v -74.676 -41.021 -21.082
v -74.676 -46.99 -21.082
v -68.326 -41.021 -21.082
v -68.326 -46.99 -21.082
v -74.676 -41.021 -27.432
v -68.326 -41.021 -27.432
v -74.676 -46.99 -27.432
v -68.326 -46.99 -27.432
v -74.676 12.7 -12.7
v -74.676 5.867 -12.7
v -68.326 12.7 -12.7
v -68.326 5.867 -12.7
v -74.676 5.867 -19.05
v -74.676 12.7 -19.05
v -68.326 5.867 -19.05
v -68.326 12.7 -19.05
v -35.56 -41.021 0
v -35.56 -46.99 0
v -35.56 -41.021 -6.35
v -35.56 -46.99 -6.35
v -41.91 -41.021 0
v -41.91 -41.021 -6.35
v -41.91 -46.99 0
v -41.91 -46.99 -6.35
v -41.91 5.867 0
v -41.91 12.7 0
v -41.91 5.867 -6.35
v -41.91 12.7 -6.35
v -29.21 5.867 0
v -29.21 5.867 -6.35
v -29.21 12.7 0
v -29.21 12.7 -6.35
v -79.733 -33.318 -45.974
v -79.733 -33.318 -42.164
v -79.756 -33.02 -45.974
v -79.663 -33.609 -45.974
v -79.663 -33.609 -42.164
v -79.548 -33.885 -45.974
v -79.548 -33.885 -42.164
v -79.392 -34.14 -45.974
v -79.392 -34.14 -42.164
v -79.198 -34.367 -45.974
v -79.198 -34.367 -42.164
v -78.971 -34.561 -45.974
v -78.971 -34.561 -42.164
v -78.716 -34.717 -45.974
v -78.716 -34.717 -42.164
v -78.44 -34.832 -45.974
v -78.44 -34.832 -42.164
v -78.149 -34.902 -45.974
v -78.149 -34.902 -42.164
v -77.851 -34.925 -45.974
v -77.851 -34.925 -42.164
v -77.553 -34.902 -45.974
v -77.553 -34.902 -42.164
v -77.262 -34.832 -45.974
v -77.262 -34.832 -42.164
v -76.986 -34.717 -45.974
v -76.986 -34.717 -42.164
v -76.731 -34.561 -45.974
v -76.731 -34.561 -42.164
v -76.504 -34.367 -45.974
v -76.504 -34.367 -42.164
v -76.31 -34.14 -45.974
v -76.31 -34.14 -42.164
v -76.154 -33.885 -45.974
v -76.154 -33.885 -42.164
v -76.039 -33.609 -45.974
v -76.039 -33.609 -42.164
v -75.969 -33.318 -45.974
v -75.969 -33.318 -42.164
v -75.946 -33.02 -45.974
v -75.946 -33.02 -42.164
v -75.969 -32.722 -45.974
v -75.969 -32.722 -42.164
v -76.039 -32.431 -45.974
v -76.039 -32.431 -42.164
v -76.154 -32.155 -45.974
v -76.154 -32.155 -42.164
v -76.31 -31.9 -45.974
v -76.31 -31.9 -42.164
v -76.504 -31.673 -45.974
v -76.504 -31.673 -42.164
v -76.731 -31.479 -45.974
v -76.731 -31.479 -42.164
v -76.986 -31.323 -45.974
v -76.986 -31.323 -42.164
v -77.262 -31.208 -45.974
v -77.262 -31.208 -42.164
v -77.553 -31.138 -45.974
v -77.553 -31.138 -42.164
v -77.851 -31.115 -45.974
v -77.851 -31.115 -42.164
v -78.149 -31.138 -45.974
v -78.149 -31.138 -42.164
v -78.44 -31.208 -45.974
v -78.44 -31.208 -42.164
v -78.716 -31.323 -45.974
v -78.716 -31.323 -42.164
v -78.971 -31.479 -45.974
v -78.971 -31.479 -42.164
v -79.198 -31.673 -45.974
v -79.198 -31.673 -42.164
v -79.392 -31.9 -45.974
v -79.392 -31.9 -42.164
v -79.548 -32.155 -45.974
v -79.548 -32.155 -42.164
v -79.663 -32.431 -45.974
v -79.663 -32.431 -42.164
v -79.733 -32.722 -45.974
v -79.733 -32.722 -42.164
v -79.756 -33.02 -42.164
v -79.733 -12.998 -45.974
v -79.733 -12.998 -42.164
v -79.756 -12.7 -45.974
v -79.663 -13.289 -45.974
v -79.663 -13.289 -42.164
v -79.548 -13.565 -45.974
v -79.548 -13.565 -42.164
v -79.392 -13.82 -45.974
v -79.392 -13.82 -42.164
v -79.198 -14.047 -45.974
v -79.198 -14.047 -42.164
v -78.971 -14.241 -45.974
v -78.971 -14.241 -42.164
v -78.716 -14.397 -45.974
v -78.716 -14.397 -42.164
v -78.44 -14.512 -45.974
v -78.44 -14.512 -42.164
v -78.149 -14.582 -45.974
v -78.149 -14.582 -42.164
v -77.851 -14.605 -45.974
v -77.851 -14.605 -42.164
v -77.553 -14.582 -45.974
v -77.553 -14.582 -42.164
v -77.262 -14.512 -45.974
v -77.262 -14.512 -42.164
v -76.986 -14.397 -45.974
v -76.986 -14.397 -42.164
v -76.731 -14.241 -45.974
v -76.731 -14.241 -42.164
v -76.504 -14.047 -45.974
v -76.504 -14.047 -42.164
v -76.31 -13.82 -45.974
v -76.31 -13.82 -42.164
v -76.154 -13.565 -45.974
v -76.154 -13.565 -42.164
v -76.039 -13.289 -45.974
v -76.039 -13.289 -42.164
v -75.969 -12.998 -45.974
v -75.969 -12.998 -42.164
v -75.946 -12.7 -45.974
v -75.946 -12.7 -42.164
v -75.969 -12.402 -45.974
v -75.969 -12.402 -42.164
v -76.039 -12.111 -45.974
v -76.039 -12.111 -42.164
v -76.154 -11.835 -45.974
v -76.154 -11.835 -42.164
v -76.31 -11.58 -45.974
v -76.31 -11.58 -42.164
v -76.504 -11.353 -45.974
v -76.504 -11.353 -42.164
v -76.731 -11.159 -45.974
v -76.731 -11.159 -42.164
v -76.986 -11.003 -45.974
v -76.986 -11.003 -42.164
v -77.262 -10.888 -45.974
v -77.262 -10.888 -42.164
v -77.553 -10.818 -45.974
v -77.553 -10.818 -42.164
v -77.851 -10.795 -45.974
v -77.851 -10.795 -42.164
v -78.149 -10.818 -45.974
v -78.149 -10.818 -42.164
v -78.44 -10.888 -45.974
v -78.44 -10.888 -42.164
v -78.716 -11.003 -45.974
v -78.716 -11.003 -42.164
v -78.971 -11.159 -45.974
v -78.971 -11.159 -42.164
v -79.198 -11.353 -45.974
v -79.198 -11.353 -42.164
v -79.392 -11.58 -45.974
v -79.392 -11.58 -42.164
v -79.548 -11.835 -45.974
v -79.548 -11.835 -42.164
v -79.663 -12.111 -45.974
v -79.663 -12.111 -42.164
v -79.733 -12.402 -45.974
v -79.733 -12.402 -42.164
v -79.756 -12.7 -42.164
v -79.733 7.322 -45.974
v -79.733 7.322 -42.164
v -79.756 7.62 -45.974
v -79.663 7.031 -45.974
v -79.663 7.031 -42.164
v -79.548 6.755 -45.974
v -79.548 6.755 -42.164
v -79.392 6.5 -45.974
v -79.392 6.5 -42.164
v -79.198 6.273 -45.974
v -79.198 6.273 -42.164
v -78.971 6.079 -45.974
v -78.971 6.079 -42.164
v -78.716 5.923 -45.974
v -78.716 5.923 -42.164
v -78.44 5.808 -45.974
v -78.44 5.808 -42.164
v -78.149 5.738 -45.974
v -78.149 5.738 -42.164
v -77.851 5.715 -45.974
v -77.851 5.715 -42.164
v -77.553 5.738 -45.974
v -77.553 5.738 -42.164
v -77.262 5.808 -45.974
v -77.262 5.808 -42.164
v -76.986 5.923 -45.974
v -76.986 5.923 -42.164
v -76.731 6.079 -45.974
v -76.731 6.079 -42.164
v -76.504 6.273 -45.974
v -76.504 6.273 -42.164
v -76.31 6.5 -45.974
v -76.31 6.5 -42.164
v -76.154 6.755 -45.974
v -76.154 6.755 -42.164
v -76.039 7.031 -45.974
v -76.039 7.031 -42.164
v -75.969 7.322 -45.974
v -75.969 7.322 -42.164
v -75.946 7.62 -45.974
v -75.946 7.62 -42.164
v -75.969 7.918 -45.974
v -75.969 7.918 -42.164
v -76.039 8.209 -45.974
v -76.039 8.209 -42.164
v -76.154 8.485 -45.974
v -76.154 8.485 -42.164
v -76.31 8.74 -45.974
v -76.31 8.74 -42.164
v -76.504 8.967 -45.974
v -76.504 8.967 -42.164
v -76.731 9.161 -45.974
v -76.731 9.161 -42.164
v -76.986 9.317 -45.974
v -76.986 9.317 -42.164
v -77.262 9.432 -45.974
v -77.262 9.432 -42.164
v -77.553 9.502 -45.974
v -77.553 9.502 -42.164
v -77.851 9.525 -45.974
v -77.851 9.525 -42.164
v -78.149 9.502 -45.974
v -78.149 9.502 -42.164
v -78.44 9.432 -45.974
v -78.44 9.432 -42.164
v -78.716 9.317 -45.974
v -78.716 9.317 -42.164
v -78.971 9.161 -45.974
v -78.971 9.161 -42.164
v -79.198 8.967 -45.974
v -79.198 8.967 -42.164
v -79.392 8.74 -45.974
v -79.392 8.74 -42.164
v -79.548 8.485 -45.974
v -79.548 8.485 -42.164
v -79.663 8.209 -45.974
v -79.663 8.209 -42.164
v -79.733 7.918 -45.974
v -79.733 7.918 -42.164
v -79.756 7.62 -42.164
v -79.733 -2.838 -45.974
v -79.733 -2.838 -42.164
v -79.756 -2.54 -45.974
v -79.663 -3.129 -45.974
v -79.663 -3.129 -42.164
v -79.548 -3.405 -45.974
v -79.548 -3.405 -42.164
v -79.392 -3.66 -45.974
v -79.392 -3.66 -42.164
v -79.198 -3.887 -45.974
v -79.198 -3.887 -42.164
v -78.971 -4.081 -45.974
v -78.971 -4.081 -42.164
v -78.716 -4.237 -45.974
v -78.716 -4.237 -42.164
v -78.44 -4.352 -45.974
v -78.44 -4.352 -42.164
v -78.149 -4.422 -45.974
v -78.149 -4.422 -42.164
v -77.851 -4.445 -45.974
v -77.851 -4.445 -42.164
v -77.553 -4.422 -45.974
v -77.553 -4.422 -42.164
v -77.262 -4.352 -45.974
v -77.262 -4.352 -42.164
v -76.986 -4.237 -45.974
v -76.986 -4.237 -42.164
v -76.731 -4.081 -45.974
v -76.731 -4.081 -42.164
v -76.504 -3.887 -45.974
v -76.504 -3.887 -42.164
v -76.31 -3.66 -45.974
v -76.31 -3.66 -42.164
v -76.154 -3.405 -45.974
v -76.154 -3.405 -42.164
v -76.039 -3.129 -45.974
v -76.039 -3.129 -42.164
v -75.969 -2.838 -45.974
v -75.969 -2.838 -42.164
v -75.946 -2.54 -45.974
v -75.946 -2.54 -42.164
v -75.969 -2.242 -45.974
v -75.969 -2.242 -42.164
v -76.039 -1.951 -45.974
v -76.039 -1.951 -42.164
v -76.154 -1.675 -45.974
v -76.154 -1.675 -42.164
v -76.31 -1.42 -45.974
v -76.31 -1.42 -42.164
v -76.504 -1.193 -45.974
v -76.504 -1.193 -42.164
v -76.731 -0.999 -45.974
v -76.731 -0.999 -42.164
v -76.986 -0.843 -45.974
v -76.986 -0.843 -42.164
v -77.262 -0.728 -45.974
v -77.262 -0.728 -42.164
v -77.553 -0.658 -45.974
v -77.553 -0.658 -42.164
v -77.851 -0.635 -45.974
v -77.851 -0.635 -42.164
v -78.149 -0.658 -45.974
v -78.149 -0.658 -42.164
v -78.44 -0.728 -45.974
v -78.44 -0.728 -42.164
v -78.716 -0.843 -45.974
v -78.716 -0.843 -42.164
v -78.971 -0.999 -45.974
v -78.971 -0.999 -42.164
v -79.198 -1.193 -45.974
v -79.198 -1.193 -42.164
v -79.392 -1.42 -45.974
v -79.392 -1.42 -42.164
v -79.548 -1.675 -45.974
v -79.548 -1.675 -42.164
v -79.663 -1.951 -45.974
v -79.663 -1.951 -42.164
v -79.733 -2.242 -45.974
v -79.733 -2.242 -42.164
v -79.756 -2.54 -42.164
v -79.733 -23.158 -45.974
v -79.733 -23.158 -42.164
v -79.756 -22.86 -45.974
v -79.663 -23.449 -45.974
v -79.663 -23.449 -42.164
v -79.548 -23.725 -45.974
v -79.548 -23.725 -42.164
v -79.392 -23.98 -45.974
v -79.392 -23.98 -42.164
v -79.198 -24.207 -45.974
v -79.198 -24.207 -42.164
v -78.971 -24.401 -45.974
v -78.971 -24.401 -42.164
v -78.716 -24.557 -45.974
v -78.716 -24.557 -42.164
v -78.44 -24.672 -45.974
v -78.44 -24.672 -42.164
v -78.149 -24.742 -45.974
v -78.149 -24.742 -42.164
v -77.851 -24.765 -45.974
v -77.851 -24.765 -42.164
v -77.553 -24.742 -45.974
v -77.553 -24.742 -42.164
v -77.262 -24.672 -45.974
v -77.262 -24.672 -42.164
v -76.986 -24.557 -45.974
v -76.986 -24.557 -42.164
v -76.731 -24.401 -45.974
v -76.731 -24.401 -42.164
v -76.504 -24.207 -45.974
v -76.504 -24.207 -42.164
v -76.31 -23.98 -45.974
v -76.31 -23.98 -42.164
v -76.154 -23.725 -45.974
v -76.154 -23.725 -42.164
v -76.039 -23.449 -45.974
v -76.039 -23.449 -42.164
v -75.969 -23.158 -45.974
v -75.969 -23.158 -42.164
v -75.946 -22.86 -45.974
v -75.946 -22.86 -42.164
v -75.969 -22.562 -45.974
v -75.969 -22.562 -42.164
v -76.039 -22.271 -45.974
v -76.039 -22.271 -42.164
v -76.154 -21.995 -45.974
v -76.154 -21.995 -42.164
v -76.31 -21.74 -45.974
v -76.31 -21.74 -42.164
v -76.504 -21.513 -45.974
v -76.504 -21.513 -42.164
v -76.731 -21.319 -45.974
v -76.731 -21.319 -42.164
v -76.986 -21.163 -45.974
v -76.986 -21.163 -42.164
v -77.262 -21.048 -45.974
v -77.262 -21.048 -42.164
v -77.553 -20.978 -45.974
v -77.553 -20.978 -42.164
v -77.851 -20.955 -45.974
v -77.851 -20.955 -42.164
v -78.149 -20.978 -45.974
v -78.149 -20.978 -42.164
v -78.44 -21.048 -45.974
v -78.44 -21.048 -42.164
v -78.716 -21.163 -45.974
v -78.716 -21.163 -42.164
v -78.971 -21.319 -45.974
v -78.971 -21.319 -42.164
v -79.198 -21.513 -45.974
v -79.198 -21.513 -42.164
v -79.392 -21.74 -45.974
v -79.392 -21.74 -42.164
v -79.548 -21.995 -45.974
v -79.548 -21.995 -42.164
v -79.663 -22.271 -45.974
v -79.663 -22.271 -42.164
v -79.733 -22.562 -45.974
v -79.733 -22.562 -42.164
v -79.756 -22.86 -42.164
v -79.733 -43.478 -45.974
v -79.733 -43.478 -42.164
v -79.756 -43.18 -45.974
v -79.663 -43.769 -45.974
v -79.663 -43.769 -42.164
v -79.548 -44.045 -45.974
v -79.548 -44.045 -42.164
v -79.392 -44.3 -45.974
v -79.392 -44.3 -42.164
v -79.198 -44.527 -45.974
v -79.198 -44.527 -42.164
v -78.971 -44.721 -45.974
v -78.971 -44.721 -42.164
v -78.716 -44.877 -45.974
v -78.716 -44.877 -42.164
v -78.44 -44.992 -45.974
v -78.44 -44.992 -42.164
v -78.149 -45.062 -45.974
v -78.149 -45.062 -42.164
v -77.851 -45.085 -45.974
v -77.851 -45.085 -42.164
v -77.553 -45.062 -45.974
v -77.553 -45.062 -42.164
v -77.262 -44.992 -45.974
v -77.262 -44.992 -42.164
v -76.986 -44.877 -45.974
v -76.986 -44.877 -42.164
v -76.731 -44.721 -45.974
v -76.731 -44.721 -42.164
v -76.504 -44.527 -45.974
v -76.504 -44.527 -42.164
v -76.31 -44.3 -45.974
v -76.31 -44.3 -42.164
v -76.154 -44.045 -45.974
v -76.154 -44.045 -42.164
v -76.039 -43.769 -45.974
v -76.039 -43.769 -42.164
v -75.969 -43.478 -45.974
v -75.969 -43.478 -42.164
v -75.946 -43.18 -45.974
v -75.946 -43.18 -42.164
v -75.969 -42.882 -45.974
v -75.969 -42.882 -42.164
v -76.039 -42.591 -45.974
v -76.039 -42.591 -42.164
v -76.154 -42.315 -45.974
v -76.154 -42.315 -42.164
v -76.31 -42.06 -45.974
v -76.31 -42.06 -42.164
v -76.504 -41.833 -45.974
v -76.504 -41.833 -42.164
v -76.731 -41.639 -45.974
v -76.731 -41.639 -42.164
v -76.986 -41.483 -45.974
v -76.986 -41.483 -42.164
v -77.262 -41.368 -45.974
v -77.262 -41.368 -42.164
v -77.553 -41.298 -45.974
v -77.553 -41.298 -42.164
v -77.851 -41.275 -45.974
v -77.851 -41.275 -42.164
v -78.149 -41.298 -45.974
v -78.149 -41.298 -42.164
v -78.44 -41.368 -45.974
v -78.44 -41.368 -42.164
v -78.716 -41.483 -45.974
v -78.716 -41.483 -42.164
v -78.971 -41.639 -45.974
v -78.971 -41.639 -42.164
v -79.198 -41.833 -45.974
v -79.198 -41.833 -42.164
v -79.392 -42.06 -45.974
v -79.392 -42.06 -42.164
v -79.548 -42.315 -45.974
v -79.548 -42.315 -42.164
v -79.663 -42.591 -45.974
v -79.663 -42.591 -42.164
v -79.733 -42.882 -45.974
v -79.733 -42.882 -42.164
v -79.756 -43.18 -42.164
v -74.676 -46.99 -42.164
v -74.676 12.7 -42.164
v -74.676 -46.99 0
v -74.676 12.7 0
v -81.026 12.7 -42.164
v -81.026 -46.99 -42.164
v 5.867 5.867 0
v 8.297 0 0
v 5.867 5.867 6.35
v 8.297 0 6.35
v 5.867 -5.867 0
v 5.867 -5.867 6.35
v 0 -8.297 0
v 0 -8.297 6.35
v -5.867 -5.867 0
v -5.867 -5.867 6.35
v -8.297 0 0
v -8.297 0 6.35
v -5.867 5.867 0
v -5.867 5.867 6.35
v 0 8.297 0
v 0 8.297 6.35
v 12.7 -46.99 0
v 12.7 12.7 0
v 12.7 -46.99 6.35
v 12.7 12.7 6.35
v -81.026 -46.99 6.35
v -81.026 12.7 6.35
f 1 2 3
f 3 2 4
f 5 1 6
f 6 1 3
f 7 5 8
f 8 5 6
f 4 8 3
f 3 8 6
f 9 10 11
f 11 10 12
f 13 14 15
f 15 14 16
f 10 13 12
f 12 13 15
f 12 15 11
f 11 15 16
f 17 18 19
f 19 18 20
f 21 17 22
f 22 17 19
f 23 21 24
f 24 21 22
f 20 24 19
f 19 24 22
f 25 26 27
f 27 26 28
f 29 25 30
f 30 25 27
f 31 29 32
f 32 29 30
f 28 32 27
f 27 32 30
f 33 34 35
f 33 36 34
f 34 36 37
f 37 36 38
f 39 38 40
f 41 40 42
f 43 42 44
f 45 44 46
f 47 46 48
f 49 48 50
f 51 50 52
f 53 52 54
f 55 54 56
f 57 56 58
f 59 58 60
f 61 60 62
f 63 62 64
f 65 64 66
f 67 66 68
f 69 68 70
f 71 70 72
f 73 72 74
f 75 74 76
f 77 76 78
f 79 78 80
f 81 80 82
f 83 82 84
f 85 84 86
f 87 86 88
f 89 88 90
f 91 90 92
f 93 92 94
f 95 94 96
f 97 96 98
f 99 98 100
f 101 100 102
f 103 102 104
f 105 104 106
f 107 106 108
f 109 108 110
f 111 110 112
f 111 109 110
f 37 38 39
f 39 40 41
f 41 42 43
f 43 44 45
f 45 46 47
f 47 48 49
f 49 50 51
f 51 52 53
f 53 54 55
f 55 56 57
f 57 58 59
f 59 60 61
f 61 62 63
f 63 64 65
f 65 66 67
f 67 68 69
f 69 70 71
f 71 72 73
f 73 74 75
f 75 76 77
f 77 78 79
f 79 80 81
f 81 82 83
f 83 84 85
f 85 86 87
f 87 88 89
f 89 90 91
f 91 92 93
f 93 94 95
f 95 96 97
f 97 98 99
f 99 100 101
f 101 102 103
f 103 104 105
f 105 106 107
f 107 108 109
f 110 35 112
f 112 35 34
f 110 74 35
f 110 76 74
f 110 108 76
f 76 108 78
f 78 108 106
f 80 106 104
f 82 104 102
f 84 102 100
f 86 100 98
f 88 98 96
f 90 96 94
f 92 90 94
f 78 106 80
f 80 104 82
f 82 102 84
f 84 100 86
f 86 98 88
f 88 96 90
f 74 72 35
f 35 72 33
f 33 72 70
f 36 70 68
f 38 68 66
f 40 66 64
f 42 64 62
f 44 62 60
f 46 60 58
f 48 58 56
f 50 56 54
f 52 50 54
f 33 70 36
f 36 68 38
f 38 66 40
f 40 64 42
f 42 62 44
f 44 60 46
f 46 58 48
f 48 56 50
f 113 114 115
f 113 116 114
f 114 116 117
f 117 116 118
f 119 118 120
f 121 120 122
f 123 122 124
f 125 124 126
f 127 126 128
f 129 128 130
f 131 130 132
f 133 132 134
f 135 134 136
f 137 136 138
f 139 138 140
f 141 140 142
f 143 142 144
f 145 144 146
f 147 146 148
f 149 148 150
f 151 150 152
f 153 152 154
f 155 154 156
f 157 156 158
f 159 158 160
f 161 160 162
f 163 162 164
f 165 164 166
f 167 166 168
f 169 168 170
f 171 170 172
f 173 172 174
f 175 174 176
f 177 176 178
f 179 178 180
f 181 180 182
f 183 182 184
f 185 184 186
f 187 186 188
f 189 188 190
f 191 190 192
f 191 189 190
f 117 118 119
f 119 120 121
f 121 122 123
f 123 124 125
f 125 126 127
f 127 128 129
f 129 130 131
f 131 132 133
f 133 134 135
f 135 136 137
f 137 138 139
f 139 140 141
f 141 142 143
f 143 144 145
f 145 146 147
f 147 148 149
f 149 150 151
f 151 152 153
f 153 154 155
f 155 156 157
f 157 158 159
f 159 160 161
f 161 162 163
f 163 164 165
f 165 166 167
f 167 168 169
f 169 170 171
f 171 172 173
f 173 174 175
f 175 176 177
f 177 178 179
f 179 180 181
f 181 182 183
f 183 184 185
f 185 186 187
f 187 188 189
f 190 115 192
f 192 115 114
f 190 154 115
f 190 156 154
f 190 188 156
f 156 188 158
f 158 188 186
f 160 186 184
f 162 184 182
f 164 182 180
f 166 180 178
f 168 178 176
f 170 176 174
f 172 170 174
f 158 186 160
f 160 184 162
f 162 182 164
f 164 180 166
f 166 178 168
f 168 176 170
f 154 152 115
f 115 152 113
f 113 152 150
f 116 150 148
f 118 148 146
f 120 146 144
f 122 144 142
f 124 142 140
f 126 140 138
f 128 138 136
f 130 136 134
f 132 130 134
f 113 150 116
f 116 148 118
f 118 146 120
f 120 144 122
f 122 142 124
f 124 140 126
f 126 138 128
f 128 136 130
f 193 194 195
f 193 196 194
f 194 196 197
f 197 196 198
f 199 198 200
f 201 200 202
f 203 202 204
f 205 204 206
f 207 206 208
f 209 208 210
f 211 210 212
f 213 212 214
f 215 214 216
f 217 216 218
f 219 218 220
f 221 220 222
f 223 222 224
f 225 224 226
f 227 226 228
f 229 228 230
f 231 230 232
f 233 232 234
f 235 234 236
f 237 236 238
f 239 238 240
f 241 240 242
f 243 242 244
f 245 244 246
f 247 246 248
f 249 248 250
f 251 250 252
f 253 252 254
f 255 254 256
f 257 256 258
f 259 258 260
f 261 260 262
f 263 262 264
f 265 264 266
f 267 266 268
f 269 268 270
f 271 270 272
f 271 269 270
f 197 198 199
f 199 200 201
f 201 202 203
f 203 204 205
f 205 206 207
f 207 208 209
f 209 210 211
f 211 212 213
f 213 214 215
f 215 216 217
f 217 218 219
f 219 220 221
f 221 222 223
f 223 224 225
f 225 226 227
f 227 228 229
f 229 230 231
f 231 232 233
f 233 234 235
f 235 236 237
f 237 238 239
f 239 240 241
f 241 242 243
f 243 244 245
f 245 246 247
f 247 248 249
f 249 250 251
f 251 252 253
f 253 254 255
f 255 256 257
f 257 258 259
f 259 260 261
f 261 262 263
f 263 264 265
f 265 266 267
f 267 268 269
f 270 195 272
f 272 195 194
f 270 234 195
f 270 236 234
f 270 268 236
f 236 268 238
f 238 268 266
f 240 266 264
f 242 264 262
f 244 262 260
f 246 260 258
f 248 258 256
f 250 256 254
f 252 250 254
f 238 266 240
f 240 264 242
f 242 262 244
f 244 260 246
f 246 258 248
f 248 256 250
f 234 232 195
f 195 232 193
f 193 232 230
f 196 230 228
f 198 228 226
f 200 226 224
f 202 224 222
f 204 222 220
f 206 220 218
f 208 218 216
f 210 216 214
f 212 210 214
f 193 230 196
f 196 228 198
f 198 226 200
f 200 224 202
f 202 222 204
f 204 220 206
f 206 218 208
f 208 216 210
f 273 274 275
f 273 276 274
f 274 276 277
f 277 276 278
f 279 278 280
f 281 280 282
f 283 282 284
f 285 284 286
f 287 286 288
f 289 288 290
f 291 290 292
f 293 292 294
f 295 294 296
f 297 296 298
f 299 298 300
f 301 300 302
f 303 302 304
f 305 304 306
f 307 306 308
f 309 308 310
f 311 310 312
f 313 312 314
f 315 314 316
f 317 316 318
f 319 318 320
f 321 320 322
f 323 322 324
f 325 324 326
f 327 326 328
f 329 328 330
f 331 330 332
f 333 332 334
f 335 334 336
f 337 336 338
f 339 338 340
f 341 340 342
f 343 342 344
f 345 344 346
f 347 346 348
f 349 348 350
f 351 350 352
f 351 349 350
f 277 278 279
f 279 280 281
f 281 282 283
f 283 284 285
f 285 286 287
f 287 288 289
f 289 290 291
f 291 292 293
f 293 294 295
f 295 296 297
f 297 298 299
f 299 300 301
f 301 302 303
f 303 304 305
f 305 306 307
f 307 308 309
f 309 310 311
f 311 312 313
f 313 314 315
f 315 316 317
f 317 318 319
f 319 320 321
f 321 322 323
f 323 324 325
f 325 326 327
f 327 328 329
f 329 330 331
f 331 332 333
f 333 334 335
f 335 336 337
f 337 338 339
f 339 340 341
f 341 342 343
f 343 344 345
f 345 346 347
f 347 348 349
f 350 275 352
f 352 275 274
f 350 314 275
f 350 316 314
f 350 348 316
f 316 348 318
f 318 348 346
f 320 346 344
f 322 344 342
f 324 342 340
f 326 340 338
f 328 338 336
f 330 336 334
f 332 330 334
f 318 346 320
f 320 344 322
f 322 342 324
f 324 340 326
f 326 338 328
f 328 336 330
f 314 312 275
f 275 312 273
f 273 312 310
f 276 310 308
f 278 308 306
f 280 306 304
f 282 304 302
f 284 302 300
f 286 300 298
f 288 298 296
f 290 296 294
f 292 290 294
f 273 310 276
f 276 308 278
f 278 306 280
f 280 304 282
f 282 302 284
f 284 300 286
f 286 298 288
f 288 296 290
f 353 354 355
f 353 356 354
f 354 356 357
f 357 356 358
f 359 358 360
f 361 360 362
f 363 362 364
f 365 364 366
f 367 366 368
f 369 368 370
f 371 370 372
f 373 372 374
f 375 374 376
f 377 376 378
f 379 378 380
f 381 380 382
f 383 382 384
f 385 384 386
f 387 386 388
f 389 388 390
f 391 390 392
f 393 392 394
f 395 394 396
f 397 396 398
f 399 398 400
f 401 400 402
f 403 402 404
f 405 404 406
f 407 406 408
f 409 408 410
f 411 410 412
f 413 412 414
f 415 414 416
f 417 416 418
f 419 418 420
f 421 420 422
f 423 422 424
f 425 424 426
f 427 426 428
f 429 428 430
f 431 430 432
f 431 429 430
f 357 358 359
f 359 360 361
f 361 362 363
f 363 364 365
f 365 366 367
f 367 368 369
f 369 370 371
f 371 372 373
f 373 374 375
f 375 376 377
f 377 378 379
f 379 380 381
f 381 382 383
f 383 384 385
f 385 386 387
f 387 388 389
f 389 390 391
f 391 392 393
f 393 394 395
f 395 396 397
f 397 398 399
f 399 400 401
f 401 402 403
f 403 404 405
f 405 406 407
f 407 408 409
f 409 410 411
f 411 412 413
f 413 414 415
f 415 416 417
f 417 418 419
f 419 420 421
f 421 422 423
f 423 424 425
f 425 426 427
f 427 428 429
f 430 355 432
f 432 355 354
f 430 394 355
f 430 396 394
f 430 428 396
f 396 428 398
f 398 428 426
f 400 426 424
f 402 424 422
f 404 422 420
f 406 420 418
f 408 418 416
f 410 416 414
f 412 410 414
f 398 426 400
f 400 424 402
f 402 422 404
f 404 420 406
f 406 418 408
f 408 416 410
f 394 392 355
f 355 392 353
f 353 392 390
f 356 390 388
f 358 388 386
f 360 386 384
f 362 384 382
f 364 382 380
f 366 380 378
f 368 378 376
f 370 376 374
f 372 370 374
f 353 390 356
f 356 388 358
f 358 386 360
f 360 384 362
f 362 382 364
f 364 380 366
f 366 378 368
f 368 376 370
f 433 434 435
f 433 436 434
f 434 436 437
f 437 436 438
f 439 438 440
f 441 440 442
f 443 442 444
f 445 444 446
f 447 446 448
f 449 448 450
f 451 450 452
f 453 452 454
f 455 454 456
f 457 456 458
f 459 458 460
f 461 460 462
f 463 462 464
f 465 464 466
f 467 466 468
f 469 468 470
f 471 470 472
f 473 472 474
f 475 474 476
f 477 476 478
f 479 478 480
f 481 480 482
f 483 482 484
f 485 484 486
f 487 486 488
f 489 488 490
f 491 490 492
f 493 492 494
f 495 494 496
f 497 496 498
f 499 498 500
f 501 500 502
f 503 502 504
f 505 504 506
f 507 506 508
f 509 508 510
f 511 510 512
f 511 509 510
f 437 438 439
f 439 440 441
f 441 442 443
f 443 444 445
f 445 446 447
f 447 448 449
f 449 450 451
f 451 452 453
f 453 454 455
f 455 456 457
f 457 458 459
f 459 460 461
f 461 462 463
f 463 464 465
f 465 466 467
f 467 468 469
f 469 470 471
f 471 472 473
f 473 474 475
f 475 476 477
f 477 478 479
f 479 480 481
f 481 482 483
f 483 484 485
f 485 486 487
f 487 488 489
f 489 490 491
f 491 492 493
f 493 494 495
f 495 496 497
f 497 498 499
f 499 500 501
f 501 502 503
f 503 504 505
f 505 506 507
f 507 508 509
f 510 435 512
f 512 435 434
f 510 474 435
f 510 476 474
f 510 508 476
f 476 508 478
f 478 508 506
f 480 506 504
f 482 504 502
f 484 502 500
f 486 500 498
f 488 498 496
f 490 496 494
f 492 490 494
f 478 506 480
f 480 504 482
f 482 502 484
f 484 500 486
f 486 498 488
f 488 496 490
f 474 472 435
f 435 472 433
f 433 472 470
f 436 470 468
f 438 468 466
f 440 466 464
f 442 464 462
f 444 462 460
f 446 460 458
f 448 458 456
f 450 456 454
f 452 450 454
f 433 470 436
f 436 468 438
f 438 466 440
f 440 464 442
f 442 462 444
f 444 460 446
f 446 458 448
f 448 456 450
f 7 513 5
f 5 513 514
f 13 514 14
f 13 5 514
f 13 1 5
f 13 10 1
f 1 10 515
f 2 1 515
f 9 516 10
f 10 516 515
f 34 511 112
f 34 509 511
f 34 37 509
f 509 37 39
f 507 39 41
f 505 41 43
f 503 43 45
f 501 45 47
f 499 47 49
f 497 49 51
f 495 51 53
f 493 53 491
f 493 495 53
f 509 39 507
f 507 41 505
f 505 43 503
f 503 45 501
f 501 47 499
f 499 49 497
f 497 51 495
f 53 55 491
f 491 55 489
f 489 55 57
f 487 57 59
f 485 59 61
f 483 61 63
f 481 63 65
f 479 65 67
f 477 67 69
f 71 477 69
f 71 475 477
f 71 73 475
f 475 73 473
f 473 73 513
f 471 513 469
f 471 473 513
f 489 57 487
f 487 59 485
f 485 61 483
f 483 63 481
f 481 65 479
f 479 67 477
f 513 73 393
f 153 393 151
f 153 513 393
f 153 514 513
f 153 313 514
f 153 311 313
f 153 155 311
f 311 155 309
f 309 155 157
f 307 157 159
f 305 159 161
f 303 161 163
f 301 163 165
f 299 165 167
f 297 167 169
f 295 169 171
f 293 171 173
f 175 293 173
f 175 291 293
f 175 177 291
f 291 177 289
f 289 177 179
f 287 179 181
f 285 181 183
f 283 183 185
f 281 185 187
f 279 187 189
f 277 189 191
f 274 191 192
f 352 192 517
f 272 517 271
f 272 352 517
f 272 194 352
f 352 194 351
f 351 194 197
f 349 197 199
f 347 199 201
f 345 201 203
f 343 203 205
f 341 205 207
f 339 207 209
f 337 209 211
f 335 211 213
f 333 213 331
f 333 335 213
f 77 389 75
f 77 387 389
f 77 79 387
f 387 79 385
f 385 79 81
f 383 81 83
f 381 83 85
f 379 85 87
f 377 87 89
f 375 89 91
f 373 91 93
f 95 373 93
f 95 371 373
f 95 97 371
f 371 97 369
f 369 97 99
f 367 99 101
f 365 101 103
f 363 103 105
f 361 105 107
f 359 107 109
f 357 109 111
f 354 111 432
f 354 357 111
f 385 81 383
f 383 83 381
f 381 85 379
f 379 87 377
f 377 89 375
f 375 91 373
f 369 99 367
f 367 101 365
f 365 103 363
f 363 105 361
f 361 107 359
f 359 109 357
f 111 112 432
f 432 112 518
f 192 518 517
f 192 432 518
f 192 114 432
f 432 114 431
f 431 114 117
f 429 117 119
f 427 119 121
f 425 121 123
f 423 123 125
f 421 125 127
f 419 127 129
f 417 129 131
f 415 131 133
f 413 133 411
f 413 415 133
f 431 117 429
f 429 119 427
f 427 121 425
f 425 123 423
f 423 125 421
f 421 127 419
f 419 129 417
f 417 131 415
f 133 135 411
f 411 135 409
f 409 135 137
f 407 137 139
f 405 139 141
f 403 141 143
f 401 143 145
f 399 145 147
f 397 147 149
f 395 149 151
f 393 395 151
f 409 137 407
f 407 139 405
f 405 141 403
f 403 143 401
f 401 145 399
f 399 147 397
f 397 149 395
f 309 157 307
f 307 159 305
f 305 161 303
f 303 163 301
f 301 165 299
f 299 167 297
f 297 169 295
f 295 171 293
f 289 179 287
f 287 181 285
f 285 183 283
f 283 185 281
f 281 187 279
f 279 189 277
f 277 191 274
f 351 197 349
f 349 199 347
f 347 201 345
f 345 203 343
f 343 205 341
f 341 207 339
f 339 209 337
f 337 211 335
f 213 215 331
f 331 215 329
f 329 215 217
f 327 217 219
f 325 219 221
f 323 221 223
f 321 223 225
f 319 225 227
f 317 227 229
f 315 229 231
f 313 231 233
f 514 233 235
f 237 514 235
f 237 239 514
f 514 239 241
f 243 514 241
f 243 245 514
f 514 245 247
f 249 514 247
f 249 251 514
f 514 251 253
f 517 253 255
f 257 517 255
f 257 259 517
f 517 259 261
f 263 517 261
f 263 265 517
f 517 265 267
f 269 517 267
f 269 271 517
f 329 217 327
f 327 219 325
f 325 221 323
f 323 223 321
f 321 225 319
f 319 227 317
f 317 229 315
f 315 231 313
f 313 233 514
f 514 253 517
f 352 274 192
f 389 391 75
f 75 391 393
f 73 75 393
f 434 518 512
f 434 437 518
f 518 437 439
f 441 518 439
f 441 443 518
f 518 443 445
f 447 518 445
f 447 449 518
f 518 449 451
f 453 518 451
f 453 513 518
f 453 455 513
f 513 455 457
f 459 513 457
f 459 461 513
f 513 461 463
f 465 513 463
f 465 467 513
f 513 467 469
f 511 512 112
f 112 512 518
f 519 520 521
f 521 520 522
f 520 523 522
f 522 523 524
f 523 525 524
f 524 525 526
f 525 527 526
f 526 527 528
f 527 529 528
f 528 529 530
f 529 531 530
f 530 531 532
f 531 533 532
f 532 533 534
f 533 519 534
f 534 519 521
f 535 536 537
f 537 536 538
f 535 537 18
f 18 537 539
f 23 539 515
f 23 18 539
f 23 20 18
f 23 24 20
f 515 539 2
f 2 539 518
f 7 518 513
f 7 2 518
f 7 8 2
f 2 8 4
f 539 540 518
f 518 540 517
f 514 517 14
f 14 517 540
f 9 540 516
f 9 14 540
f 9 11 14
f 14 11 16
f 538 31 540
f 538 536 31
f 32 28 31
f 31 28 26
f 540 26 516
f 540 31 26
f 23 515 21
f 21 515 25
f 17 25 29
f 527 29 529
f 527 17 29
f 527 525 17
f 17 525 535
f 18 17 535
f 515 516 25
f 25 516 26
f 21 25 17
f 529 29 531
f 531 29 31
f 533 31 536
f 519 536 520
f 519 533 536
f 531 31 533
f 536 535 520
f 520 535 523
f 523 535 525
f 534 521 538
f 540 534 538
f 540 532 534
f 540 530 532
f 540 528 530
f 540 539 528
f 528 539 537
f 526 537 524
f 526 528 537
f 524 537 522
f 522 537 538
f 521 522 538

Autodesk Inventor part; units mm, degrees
ref_plane "YZ Plane" through (0, 0, 0) normal (1, 0, 0) x (0, 1, 0)
ref_plane "XZ Plane" through (0, 0, 0) normal (0, 1, 0) x (-1, 0, 0)
ref_plane "XY Plane" through (0, 0, 0) normal (0, 0, 1) x (1, 0, 0)
sketch "Sketch1" plane through (0, 0, 0) normal (0, 0, 1) x (1, 0, 0)
  line L0 (0, 8.2967) -> (5.8666, 5.8666)
  line L1 (5.8666, 5.8666) -> (8.2967, 0)
  line L2 (8.2967, 0) -> (5.8666, -5.8666)
  line L3 (5.8666, -5.8666) -> (0, -8.2967)
  line L4 (0, -8.2967) -> (-5.8666, -5.8666)
  line L5 (-5.8666, -5.8666) -> (-8.2967, 0)
  line L6 (-8.2967, 0) -> (-5.8666, 5.8666)
  line L7 (-5.8666, 5.8666) -> (0, 8.2967)
  line L8 (-81.026, 12.7) -> (12.7, 12.7)
  line L9 (12.7, 12.7) -> (12.7, -46.99)
  line L10 (12.7, -46.99) -> (-81.026, -46.99)
  line L11 (-81.026, -46.99) -> (-81.026, 12.7)
  point P0 (0, 0)
  point P1 (0, 0)
  dimension "d0" = 6.35
  dimension "d1" = 12.7
  dimension "d2" = 12.7
  dimension "d4" = 93.726
  dimension "d46" = 59.69
extrude "Extrusion1" add sketch "Sketch1" along normal blind 6.35
sketch "Sketch2" plane through (0, 0, 0) normal (0, 0, -1) x (-1, 0, 0)
  line L0 (81.026, -46.99) -> (-12.7, -46.99) projected
  line L1 (81.026, 12.7) -> (74.676, 12.7)
  line L2 (74.676, 12.7) -> (74.676, -46.99)
  line L3 (74.676, -46.99) -> (81.026, -46.99)
  line L4 (81.026, -46.99) -> (81.026, 12.7)
  point P0 (0, 0)
  dimension "d7" = 6.35
extrude "Extrusion2" add sketch "Sketch2" along normal blind 42.164
sketch "Sketch3" plane through (0, 0, -42.164) normal (0, 0, -1) x (-1, 0, 0)
  circle A0 centre (77.851, 7.62) radius 1.905
  circle A1 centre (77.851, -2.54) radius 1.905
  circle A2 centre (77.851, -12.7) radius 1.905
  circle A3 centre (77.851, -22.86) radius 1.905
  line L0 (81.026, -46.99) -> (81.026, 12.7) projected
  line L1 (81.026, 12.7) -> (74.676, 12.7) projected
  circle A4 centre (77.851, -33.02) radius 1.905
  circle A5 centre (77.851, -43.18) radius 1.905
  line L2 (74.676, -46.99) -> (81.026, -46.99) projected
  point P0 (0, 0)
  dimension "d10" = 3.81
  dimension "d11" = 3.175
  dimension "d12" = 5.08
  dimension "d13" = 3.81
  dimension "d14" = 3.175
  dimension "d15" = 10.16
  dimension "d16" = 3.81
  dimension "d17" = 10.16
  dimension "d18" = 3.175
  dimension "d19" = 3.81
  dimension "d20" = 3.175
  dimension "d21" = 10.16
  dimension "d26" = 3.81
  dimension "d27" = 3.175
  dimension "d28" = 3.81
  dimension "d29" = 10.16
  dimension "d30" = 3.175
  dimension "d31" = 3.81
  dimension "d43" = 10.16
extrude "Extrusion3" add sketch "Sketch3" along normal blind 3.81
sketch "Sketch4" plane through (0, 0, 0) normal (0, 0, -1) x (-1, 0, 0)
  line L0 (5.8666, 5.8666) -> (50.455, 5.8666)
  line L1 (74.676, 12.7) -> (-12.7, 12.7) projected
  line L2 (15.8582, 12.7) -> (28.5582, 12.7)
  line L3 (28.5582, 5.8666) -> (15.8582, 5.8666)
  line L4 (41.91, 12.7) -> (29.21, 12.7)
  line L5 (29.21, 12.7) -> (29.21, 5.8666)
  line L6 (29.21, 5.8666) -> (41.91, 5.8666)
  line L7 (41.91, 5.8666) -> (41.91, 12.7)
  line L8 (-12.7, 12.7) -> (-12.7, -46.99) projected
  line L9 (81.026, -46.99) -> (-12.7, -46.99) projected
  line L10 (35.56, -46.99) -> (41.91, -46.99)
  line L11 (41.91, -46.99) -> (41.91, -41.021)
  line L12 (41.91, -41.021) -> (35.56, -41.021)
  line L13 (35.56, -41.021) -> (35.56, -46.99)
  point P0 (0, 0)
  dimension "d35" = 12.7
  dimension "d36" = 41.91
  dimension "d49" = 6.35
  dimension "d50" = 5.969
  dimension "d51" = 48.26
extrude "Extrusion4" add sketch "Sketch4" along normal blind 6.35
sketch "Sketch5" plane through (-74.676, -46.99, 0) normal (1, 0, 0) x (0, 0, -1)
  line L0 (0, 52.8566) -> (28.7051, 52.8566)
  line L1 (0, 52.8566) -> (6.35, 52.8566) projected
  line L2 (0, 59.69) -> (42.164, 59.69) projected
  line L3 (19.05, 52.8566) -> (12.7, 52.8566)
  line L4 (12.7, 52.8566) -> (12.7, 59.69)
  line L5 (12.7, 59.69) -> (19.05, 59.69)
  line L6 (19.05, 59.69) -> (19.05, 52.8566)
  line L7 (-6.35, 0) -> (-6.35, 59.69) projected
  line L8 (0, 0) -> (42.164, 0) projected
  line L9 (-6.35, 0) -> (42.164, 0) projected
  line L10 (21.082, 0) -> (27.432, 0)
  line L11 (27.432, 0) -> (27.432, 5.969)
  line L12 (27.432, 5.969) -> (21.082, 5.969)
  line L13 (21.082, 5.969) -> (21.082, 0)
  point P0 (0, 46.99)
  dimension "d39" = 6.35
  dimension "d40" = 19.05
  dimension "d44" = 52.8566
  dimension "d45" = 6.8334
  dimension "d47" = 6.35
  dimension "d48" = 5.969
extrude "Extrusion5" add sketch "Sketch5" along normal blind 6.35
properties part number "polyoctpart"
